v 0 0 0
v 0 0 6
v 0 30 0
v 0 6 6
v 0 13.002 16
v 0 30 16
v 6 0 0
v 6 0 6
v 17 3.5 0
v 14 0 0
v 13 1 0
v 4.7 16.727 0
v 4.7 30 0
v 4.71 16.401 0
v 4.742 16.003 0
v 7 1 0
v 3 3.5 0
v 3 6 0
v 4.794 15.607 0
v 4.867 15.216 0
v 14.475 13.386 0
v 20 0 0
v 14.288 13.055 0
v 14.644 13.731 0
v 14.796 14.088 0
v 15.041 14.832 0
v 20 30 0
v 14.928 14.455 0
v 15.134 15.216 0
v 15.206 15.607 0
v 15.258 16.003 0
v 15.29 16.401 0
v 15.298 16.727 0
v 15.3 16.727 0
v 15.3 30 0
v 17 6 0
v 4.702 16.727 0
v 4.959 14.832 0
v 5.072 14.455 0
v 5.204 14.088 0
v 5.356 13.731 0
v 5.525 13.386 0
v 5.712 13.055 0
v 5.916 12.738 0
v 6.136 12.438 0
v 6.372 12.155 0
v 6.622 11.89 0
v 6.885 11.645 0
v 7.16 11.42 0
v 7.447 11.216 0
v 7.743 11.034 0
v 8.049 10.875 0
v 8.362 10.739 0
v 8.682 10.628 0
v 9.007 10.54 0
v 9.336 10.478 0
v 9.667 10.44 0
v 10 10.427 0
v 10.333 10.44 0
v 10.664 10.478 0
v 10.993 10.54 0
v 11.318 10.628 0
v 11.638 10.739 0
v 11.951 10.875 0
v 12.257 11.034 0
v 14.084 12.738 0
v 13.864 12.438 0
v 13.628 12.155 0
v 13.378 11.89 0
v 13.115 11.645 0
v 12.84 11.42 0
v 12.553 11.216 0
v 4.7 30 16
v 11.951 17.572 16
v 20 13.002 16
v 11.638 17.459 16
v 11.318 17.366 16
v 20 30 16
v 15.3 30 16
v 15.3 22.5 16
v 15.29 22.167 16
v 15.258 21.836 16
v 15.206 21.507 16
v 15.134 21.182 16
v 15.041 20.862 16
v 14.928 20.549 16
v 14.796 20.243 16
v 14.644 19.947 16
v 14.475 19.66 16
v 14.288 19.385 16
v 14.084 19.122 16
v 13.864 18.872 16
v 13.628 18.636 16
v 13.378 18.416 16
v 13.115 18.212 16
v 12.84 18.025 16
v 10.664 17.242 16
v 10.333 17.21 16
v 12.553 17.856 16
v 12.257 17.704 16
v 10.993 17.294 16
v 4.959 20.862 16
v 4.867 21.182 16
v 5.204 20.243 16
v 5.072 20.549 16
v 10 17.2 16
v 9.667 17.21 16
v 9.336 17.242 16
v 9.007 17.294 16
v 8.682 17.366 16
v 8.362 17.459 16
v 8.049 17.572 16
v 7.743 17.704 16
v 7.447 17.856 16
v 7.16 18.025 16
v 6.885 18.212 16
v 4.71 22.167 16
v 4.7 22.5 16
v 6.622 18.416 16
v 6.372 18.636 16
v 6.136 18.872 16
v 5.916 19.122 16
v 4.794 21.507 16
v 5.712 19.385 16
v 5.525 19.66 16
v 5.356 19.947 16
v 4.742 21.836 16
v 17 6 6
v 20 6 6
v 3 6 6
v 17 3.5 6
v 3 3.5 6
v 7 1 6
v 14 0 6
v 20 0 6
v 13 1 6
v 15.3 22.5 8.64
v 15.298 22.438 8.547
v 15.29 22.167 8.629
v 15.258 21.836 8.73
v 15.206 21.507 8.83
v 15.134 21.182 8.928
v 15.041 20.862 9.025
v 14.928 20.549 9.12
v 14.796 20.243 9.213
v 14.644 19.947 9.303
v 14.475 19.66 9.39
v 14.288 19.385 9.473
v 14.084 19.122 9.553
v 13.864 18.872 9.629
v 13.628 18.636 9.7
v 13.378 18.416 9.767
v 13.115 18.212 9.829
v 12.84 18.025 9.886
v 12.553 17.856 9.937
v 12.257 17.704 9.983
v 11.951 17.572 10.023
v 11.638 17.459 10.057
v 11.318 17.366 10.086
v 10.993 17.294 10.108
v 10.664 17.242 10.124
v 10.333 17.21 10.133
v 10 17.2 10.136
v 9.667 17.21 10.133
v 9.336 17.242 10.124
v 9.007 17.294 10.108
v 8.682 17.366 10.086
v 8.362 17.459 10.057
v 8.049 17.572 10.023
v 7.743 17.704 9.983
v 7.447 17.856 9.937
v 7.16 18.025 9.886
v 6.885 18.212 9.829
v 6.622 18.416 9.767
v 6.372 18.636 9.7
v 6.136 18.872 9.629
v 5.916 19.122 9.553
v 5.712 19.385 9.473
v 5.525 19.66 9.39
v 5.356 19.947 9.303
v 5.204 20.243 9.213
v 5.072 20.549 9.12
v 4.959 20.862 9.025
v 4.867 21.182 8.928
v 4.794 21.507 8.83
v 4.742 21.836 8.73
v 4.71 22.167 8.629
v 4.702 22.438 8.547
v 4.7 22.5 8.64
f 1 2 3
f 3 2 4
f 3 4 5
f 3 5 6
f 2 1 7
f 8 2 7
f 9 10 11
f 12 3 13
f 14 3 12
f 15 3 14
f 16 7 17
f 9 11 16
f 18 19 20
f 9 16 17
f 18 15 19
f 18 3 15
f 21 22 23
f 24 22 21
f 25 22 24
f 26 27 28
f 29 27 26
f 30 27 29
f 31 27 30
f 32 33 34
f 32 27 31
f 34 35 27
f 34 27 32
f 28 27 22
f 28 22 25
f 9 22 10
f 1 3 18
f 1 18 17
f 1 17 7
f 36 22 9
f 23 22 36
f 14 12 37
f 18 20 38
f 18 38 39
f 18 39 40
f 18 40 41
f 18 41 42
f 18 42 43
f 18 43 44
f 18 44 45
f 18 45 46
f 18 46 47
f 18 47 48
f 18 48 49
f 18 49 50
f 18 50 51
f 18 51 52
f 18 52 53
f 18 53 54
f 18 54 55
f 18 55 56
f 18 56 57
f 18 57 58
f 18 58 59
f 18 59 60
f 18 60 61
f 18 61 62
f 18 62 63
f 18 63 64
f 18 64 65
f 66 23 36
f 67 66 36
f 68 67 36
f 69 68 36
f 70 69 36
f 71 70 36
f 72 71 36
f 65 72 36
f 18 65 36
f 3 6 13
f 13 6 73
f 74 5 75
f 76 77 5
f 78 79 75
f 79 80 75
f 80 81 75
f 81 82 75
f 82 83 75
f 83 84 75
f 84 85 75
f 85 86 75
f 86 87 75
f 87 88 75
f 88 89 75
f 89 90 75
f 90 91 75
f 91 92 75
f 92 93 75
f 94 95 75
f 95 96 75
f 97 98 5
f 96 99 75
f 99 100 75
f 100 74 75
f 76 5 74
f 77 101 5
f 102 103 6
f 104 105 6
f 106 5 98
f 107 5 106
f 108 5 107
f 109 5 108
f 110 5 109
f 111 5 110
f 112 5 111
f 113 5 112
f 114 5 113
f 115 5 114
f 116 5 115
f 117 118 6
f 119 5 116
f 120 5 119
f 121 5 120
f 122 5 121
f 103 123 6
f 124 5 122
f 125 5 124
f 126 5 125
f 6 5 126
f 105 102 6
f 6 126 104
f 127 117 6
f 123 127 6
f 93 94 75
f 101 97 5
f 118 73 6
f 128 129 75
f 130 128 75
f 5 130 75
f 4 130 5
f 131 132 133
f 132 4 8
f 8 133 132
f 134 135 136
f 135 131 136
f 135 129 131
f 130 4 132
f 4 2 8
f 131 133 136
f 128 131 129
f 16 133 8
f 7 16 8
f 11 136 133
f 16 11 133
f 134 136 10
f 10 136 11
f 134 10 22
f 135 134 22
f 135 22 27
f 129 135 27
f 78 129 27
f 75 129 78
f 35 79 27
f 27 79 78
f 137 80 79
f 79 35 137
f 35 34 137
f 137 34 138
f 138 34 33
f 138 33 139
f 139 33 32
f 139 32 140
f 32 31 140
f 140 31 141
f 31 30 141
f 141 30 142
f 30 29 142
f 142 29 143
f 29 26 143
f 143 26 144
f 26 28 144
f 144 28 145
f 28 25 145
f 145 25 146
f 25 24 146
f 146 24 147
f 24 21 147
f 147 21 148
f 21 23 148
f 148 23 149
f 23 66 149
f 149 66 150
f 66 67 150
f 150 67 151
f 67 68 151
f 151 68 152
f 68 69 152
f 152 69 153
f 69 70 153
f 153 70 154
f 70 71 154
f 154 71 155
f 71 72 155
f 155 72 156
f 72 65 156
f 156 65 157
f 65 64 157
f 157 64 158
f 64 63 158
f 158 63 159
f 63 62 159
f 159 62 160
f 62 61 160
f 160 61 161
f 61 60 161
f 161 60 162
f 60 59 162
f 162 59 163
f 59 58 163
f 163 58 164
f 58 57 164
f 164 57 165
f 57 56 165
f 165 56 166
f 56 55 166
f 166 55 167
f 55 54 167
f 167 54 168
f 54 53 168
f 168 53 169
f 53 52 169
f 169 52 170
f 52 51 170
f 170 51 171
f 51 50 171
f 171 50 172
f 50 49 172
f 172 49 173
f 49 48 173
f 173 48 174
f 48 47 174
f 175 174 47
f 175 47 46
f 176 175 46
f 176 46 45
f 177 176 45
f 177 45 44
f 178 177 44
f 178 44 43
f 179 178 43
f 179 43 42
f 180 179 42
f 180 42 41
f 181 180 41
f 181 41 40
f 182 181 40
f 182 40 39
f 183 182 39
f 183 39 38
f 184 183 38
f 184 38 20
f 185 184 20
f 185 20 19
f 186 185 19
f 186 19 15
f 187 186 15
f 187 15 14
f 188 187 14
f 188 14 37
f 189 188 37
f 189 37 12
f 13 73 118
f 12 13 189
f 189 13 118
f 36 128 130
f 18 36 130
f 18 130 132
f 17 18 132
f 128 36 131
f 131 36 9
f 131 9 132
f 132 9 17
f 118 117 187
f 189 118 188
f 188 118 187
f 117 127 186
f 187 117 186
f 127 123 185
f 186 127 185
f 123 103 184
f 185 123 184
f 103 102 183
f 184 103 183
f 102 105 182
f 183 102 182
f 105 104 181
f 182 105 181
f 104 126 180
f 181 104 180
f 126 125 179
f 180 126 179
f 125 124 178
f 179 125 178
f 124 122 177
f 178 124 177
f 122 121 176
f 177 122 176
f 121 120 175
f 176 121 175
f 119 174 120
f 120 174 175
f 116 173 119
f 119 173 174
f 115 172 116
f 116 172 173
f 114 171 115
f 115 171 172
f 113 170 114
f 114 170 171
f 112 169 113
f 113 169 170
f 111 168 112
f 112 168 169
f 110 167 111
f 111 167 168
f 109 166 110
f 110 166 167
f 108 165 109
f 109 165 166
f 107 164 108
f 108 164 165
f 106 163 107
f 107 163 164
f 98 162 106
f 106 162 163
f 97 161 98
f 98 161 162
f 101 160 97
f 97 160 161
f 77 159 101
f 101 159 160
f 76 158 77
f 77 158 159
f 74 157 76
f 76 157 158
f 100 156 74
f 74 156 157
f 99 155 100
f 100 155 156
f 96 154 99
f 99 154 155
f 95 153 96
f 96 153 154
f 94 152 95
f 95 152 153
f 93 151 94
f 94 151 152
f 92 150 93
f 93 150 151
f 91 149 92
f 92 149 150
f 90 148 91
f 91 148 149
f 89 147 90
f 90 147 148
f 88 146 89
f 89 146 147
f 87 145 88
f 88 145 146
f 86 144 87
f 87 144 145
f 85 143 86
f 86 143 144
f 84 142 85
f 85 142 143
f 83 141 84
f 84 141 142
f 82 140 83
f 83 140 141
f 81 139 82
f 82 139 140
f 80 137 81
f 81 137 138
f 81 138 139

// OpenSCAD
// Created from Code_Ycorner (x3).stl
// https://github.com/Mecan0/Code
// By J.Rodigo (www.jra.so)
// Licence Creative commons atribution & share alike.

/**************************/
// Parámetros de la pieza  /
/**************************/

// Diámetro del tornillo (10.6)
dPas = 10.6;	

// Pieza principal a trabajar
module bloque(){
	cube([20, 30, 16]);	
}

// Taladro y redondeo en forma de U (Centrado)
// (d,h,u) = (diámetro,altura,lardo de vaciado)
module RedU(d,h,u){ 
		// Taladro vertical
		translate([(d/2)+(u-d)/2, 0, 0])
		cube([u, d, h],center=true);
		// Vaciado en forma de U
		translate([0, 0, -h/2])
		rotate( 90, [0, 0, 1])
		cylinder(h = h, r = d/2, $fn=100);
}

// Vaciado en forma de U para el tornillo
module taladro(){
	// Vaciado en forma de U (Vertical)
	translate([10, 22.5, 8])
	rotate( 90, [0, 0, 1])
	RedU(dPas,17,8);
	// Vaciado en forma de U (Inclinado)
	translate([10, 19.08, 3.41])
	rotate(-33.75, [1,0,0])
	rotate( 90, [0, 0, 1])
	RedU(dPas,25,8);
}

// Vaciado y chaflán
module vaciochaflan(){
	// Vaciado plano
	translate([-1, -1, 6])
	cube([22, 7, 11]);
	// Vaciado chaflán
	translate([-1, 6, 6])
	rotate(55, [1,0,0])
	cube([22, 15, 8]);
}

// Tope para la varilla lisa
module tope(){	
	// Tope de soporte de la varilla lisa
	translate([7, -1, -1])
	cube([6, 2, 8]);
	// Chaflán a 45º
	translate([7, 1, -1])
	rotate(225, [0,0,1])
	cube([2, 2, 8]);
	// Chaflán a 45º
	translate([13, 1, -1])
	rotate(225, [0,0,1])
	cube([2, 2, 8]);
	// Vaciado interior del tope
	translate([3, 3.5, -1])
	cube([14, 2.5, 8]);
}

// Creamos la pieza a partir del bloque y todas sus operaciones
module pieza(){
	// Bloque principal de la pieza
	difference() {
		bloque();
		union() {
			taladro();
			vaciochaflan();
			tope();
		}
	}
}


// Generamos la pieza!!

	pieza();
